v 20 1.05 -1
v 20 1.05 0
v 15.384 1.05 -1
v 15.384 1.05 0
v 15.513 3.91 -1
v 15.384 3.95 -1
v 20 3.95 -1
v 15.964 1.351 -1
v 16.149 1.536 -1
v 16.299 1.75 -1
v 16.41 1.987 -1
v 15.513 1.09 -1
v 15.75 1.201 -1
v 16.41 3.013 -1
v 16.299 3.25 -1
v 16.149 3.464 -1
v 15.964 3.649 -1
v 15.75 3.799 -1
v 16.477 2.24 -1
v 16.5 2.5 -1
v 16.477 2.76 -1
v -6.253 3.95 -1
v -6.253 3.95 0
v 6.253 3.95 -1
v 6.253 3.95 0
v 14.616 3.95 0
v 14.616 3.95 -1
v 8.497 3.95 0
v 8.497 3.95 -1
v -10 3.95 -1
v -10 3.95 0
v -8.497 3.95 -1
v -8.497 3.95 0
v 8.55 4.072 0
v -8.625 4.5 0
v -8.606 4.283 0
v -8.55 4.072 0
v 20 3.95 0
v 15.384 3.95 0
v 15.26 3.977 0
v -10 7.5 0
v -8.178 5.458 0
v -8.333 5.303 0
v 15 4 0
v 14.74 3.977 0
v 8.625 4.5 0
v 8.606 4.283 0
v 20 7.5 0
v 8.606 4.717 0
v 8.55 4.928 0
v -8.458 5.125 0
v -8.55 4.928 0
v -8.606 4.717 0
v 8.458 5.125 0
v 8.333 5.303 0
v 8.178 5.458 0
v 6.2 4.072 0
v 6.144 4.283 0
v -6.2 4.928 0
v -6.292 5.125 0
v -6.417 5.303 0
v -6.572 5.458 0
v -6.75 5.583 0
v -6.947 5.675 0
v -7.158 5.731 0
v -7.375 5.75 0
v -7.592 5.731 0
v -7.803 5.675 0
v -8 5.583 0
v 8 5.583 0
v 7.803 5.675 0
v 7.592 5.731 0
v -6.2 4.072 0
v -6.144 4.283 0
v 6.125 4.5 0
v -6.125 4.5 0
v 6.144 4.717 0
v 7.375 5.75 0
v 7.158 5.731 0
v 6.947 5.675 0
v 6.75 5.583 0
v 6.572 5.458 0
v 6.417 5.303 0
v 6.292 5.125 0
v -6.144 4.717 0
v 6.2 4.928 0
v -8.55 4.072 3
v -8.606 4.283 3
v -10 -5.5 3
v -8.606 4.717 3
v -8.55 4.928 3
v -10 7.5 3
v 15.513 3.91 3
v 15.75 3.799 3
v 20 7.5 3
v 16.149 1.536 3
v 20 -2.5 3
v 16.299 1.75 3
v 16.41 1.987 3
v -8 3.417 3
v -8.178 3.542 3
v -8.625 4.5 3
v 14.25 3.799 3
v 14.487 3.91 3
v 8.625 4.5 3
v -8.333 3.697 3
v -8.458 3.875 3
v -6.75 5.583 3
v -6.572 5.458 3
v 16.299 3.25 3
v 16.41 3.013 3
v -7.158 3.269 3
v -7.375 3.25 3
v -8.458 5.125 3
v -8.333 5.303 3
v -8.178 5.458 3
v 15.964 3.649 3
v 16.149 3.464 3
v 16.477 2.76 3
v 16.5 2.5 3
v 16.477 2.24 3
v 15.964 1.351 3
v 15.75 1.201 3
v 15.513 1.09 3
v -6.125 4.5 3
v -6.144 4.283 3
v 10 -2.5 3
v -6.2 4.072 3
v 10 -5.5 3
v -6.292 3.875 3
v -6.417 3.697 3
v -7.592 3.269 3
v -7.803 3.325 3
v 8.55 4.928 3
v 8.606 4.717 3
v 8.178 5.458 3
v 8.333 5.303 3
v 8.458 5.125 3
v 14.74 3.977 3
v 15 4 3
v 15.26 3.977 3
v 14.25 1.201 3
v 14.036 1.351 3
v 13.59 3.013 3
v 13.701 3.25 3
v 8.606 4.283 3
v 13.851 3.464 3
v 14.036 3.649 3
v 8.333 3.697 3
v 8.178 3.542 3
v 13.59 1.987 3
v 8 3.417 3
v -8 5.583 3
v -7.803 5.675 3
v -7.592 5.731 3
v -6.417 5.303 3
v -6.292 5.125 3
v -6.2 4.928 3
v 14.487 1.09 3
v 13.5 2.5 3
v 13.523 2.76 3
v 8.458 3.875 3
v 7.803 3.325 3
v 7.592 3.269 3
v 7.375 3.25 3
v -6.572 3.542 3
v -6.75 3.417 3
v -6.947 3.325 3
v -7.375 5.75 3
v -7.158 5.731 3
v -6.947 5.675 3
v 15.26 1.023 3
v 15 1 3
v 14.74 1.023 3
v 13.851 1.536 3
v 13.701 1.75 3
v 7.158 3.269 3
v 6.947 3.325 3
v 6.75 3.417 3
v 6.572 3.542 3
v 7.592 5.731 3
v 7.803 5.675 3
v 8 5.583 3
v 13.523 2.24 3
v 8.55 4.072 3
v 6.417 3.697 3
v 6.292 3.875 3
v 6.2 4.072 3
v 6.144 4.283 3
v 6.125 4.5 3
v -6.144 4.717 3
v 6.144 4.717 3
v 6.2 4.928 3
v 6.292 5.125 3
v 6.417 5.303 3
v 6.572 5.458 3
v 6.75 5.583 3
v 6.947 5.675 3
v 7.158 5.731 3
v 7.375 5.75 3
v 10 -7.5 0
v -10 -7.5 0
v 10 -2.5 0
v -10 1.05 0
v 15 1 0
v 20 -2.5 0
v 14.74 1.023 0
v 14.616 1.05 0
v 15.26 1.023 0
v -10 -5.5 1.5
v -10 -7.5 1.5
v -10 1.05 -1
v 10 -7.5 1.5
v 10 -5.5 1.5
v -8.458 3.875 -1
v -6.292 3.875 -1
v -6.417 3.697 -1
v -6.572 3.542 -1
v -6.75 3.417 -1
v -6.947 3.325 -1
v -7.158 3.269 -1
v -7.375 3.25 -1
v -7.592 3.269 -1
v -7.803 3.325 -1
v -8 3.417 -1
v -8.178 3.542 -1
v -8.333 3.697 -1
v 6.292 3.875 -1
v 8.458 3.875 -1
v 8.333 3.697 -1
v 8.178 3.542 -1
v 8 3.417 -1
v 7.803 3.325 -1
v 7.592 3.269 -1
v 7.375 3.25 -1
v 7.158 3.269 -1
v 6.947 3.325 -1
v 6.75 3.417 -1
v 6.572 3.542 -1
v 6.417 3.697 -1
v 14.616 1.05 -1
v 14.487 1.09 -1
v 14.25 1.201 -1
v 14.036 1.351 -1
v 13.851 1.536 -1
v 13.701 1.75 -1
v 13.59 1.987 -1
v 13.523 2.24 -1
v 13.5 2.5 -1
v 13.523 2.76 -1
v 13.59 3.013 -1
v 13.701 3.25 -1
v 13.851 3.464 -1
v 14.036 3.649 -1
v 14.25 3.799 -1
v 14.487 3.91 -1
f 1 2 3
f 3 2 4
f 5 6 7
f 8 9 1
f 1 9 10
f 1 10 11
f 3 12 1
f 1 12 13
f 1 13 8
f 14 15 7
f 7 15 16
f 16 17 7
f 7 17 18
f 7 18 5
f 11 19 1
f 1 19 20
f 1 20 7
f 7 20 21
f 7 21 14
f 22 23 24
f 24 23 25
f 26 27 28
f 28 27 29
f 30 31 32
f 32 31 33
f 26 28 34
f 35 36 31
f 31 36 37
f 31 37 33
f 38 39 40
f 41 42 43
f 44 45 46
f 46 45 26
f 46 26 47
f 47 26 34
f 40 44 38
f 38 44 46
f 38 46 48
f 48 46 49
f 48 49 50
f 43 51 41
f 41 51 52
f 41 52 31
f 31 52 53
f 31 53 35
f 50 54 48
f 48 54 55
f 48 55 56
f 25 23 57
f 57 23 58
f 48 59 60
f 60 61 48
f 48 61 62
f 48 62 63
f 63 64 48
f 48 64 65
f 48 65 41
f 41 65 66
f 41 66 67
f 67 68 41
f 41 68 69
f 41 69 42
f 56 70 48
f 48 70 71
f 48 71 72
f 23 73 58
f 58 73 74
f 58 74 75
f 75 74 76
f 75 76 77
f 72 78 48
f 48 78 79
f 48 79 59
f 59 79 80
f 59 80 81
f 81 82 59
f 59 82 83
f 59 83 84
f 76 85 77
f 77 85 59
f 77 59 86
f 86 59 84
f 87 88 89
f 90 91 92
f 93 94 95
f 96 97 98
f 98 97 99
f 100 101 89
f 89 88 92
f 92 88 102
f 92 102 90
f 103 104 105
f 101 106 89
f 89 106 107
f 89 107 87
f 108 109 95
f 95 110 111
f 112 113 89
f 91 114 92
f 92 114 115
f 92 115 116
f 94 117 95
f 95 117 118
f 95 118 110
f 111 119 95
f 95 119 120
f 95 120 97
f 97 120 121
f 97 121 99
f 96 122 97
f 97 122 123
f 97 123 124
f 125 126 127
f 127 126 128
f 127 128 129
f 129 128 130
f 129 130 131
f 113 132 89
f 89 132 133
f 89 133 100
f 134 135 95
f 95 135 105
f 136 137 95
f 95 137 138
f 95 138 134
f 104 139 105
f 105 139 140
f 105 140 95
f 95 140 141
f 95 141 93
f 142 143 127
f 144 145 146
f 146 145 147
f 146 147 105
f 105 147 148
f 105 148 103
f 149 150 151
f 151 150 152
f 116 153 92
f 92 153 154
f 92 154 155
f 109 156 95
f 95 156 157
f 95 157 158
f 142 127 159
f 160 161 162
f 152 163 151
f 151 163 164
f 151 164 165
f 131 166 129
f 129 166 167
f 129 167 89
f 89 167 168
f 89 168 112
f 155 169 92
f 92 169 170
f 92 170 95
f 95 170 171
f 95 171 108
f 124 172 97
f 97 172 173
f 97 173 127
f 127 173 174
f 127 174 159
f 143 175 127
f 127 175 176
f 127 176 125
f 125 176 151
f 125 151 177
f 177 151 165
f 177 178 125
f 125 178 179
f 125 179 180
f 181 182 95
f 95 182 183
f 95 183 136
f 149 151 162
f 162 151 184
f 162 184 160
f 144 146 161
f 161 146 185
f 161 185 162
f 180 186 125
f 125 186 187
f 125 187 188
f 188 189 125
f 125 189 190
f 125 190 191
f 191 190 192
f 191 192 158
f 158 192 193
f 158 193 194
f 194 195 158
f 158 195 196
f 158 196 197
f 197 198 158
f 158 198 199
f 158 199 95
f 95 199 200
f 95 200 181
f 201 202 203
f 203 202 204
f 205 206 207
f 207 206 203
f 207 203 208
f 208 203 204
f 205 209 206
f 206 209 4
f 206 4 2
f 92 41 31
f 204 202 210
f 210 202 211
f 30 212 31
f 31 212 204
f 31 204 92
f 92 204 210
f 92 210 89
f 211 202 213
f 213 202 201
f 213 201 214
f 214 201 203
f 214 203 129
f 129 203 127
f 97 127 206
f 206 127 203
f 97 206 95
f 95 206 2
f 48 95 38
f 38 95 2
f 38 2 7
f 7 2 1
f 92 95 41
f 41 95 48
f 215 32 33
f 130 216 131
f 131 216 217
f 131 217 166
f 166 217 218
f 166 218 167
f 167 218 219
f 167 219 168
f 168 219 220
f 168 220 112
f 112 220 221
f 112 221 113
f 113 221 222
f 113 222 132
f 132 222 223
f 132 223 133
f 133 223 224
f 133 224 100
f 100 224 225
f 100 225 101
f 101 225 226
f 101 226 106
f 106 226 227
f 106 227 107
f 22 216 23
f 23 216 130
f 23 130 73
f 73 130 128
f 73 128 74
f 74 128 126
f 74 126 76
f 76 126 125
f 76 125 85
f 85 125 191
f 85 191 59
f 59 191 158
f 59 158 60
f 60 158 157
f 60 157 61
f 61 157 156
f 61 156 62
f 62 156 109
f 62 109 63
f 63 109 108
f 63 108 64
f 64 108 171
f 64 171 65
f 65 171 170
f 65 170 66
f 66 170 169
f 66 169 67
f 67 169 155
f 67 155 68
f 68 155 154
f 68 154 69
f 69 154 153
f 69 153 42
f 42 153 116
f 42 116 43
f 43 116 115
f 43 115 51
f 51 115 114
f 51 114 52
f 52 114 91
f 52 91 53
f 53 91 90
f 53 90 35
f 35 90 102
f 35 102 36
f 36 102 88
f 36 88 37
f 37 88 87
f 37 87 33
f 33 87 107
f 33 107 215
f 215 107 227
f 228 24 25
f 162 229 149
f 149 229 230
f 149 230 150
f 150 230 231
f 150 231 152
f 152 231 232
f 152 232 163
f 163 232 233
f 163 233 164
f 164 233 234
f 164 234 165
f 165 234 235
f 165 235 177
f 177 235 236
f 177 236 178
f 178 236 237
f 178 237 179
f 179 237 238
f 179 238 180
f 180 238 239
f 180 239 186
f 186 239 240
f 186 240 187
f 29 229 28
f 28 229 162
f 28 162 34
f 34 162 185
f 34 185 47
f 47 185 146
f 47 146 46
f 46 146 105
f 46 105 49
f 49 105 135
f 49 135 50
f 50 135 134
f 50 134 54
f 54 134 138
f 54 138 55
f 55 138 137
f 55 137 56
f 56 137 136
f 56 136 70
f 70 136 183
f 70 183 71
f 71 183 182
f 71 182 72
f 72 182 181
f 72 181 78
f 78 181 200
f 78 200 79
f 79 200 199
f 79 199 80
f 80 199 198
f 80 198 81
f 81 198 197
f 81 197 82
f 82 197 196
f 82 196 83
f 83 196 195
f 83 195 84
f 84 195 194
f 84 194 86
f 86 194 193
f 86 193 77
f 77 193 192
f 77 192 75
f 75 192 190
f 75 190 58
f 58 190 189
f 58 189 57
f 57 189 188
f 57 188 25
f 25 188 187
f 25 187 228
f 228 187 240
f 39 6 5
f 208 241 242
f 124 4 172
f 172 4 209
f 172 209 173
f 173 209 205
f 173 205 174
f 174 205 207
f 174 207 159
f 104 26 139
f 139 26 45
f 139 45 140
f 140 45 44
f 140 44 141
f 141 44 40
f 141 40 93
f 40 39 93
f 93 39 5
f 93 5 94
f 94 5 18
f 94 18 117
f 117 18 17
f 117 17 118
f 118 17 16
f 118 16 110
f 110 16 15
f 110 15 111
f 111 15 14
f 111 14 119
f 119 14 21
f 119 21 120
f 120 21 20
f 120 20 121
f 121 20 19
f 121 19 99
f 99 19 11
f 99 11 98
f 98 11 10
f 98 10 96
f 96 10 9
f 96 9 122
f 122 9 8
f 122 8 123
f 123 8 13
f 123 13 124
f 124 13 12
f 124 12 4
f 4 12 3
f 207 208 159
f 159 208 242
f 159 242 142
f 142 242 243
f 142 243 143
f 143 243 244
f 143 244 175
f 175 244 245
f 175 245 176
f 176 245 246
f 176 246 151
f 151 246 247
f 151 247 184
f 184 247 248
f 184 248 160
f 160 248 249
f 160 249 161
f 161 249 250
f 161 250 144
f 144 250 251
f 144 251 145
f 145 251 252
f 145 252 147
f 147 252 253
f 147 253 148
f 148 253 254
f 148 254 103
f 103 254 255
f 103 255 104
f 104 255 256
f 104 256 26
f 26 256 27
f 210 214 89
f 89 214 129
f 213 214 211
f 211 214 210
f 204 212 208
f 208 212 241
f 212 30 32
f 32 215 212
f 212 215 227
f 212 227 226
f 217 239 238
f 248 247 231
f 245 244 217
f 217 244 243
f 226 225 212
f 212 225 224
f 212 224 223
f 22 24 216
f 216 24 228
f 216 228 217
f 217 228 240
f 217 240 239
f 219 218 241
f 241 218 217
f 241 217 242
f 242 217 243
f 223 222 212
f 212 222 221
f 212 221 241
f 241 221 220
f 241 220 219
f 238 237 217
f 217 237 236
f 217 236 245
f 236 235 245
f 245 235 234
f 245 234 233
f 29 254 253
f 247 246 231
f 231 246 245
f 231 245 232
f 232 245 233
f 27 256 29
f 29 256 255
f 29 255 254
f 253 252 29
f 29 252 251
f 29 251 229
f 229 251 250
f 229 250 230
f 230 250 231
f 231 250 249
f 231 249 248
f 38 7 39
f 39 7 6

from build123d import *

# Parameters (mm, degrees)
SKETCH1_R              = 1.25
SKETCH1_R_2            = 1.5
MAIN_DEPTH             = 3
SKETCH2_W              = 20
SKETCH2_H              = 2
PINHOLES_DEPTH         = 1.5
SKETCH3_W              = 1
SKETCH3_H              = 2.9
MAKERBEAMSUPPORT_DEPTH = 30
SKETCH4_R              = 1.25
SKETCH4_R_2            = 1.5
HOLES2_DEPTH           = 5


with BuildPart() as part:
    # Sketch1 → Main (new body)
    with BuildSketch(Plane.XY):
        Polygon((-10, -7.5), (10, -7.5), (10, -2.5), (20, -2.5), (20, 7.5), (-10, 7.5), align=None)
        with Locations((-7.375, 4.5)):
            Circle(SKETCH1_R, mode=Mode.SUBTRACT)
        with Locations((7.375, 4.5)):
            Circle(SKETCH1_R, mode=Mode.SUBTRACT)
        with Locations((15, 2.5)):
            Circle(SKETCH1_R_2, mode=Mode.SUBTRACT)
    extrude(amount=MAIN_DEPTH)

    # Sketch2 → PinHoles (cut)
    with BuildSketch(Plane.XY.offset(3)):
        with Locations((0, -6.5)):
            Rectangle(SKETCH2_W, SKETCH2_H)
    extrude(amount=-PINHOLES_DEPTH, mode=Mode.SUBTRACT)

    # Sketch3 → MakerBeamSupport (add)
    with BuildSketch(Plane.ZY.offset(10)):
        with Locations((-0.5, 2.5)):
            Rectangle(SKETCH3_W, SKETCH3_H)
    extrude(amount=-MAKERBEAMSUPPORT_DEPTH)

    # Sketch4 → Holes2 (cut, through all)
    with BuildSketch(Plane.XY.offset(3)):
        with Locations((-7.375, 4.5)):
            Circle(SKETCH4_R)
        with Locations((7.375, 4.5)):
            Circle(SKETCH4_R)
        with Locations((15, 2.5)):
            Circle(SKETCH4_R_2)
    extrude(amount=-HOLES2_DEPTH, mode=Mode.SUBTRACT)


solid = part.part
